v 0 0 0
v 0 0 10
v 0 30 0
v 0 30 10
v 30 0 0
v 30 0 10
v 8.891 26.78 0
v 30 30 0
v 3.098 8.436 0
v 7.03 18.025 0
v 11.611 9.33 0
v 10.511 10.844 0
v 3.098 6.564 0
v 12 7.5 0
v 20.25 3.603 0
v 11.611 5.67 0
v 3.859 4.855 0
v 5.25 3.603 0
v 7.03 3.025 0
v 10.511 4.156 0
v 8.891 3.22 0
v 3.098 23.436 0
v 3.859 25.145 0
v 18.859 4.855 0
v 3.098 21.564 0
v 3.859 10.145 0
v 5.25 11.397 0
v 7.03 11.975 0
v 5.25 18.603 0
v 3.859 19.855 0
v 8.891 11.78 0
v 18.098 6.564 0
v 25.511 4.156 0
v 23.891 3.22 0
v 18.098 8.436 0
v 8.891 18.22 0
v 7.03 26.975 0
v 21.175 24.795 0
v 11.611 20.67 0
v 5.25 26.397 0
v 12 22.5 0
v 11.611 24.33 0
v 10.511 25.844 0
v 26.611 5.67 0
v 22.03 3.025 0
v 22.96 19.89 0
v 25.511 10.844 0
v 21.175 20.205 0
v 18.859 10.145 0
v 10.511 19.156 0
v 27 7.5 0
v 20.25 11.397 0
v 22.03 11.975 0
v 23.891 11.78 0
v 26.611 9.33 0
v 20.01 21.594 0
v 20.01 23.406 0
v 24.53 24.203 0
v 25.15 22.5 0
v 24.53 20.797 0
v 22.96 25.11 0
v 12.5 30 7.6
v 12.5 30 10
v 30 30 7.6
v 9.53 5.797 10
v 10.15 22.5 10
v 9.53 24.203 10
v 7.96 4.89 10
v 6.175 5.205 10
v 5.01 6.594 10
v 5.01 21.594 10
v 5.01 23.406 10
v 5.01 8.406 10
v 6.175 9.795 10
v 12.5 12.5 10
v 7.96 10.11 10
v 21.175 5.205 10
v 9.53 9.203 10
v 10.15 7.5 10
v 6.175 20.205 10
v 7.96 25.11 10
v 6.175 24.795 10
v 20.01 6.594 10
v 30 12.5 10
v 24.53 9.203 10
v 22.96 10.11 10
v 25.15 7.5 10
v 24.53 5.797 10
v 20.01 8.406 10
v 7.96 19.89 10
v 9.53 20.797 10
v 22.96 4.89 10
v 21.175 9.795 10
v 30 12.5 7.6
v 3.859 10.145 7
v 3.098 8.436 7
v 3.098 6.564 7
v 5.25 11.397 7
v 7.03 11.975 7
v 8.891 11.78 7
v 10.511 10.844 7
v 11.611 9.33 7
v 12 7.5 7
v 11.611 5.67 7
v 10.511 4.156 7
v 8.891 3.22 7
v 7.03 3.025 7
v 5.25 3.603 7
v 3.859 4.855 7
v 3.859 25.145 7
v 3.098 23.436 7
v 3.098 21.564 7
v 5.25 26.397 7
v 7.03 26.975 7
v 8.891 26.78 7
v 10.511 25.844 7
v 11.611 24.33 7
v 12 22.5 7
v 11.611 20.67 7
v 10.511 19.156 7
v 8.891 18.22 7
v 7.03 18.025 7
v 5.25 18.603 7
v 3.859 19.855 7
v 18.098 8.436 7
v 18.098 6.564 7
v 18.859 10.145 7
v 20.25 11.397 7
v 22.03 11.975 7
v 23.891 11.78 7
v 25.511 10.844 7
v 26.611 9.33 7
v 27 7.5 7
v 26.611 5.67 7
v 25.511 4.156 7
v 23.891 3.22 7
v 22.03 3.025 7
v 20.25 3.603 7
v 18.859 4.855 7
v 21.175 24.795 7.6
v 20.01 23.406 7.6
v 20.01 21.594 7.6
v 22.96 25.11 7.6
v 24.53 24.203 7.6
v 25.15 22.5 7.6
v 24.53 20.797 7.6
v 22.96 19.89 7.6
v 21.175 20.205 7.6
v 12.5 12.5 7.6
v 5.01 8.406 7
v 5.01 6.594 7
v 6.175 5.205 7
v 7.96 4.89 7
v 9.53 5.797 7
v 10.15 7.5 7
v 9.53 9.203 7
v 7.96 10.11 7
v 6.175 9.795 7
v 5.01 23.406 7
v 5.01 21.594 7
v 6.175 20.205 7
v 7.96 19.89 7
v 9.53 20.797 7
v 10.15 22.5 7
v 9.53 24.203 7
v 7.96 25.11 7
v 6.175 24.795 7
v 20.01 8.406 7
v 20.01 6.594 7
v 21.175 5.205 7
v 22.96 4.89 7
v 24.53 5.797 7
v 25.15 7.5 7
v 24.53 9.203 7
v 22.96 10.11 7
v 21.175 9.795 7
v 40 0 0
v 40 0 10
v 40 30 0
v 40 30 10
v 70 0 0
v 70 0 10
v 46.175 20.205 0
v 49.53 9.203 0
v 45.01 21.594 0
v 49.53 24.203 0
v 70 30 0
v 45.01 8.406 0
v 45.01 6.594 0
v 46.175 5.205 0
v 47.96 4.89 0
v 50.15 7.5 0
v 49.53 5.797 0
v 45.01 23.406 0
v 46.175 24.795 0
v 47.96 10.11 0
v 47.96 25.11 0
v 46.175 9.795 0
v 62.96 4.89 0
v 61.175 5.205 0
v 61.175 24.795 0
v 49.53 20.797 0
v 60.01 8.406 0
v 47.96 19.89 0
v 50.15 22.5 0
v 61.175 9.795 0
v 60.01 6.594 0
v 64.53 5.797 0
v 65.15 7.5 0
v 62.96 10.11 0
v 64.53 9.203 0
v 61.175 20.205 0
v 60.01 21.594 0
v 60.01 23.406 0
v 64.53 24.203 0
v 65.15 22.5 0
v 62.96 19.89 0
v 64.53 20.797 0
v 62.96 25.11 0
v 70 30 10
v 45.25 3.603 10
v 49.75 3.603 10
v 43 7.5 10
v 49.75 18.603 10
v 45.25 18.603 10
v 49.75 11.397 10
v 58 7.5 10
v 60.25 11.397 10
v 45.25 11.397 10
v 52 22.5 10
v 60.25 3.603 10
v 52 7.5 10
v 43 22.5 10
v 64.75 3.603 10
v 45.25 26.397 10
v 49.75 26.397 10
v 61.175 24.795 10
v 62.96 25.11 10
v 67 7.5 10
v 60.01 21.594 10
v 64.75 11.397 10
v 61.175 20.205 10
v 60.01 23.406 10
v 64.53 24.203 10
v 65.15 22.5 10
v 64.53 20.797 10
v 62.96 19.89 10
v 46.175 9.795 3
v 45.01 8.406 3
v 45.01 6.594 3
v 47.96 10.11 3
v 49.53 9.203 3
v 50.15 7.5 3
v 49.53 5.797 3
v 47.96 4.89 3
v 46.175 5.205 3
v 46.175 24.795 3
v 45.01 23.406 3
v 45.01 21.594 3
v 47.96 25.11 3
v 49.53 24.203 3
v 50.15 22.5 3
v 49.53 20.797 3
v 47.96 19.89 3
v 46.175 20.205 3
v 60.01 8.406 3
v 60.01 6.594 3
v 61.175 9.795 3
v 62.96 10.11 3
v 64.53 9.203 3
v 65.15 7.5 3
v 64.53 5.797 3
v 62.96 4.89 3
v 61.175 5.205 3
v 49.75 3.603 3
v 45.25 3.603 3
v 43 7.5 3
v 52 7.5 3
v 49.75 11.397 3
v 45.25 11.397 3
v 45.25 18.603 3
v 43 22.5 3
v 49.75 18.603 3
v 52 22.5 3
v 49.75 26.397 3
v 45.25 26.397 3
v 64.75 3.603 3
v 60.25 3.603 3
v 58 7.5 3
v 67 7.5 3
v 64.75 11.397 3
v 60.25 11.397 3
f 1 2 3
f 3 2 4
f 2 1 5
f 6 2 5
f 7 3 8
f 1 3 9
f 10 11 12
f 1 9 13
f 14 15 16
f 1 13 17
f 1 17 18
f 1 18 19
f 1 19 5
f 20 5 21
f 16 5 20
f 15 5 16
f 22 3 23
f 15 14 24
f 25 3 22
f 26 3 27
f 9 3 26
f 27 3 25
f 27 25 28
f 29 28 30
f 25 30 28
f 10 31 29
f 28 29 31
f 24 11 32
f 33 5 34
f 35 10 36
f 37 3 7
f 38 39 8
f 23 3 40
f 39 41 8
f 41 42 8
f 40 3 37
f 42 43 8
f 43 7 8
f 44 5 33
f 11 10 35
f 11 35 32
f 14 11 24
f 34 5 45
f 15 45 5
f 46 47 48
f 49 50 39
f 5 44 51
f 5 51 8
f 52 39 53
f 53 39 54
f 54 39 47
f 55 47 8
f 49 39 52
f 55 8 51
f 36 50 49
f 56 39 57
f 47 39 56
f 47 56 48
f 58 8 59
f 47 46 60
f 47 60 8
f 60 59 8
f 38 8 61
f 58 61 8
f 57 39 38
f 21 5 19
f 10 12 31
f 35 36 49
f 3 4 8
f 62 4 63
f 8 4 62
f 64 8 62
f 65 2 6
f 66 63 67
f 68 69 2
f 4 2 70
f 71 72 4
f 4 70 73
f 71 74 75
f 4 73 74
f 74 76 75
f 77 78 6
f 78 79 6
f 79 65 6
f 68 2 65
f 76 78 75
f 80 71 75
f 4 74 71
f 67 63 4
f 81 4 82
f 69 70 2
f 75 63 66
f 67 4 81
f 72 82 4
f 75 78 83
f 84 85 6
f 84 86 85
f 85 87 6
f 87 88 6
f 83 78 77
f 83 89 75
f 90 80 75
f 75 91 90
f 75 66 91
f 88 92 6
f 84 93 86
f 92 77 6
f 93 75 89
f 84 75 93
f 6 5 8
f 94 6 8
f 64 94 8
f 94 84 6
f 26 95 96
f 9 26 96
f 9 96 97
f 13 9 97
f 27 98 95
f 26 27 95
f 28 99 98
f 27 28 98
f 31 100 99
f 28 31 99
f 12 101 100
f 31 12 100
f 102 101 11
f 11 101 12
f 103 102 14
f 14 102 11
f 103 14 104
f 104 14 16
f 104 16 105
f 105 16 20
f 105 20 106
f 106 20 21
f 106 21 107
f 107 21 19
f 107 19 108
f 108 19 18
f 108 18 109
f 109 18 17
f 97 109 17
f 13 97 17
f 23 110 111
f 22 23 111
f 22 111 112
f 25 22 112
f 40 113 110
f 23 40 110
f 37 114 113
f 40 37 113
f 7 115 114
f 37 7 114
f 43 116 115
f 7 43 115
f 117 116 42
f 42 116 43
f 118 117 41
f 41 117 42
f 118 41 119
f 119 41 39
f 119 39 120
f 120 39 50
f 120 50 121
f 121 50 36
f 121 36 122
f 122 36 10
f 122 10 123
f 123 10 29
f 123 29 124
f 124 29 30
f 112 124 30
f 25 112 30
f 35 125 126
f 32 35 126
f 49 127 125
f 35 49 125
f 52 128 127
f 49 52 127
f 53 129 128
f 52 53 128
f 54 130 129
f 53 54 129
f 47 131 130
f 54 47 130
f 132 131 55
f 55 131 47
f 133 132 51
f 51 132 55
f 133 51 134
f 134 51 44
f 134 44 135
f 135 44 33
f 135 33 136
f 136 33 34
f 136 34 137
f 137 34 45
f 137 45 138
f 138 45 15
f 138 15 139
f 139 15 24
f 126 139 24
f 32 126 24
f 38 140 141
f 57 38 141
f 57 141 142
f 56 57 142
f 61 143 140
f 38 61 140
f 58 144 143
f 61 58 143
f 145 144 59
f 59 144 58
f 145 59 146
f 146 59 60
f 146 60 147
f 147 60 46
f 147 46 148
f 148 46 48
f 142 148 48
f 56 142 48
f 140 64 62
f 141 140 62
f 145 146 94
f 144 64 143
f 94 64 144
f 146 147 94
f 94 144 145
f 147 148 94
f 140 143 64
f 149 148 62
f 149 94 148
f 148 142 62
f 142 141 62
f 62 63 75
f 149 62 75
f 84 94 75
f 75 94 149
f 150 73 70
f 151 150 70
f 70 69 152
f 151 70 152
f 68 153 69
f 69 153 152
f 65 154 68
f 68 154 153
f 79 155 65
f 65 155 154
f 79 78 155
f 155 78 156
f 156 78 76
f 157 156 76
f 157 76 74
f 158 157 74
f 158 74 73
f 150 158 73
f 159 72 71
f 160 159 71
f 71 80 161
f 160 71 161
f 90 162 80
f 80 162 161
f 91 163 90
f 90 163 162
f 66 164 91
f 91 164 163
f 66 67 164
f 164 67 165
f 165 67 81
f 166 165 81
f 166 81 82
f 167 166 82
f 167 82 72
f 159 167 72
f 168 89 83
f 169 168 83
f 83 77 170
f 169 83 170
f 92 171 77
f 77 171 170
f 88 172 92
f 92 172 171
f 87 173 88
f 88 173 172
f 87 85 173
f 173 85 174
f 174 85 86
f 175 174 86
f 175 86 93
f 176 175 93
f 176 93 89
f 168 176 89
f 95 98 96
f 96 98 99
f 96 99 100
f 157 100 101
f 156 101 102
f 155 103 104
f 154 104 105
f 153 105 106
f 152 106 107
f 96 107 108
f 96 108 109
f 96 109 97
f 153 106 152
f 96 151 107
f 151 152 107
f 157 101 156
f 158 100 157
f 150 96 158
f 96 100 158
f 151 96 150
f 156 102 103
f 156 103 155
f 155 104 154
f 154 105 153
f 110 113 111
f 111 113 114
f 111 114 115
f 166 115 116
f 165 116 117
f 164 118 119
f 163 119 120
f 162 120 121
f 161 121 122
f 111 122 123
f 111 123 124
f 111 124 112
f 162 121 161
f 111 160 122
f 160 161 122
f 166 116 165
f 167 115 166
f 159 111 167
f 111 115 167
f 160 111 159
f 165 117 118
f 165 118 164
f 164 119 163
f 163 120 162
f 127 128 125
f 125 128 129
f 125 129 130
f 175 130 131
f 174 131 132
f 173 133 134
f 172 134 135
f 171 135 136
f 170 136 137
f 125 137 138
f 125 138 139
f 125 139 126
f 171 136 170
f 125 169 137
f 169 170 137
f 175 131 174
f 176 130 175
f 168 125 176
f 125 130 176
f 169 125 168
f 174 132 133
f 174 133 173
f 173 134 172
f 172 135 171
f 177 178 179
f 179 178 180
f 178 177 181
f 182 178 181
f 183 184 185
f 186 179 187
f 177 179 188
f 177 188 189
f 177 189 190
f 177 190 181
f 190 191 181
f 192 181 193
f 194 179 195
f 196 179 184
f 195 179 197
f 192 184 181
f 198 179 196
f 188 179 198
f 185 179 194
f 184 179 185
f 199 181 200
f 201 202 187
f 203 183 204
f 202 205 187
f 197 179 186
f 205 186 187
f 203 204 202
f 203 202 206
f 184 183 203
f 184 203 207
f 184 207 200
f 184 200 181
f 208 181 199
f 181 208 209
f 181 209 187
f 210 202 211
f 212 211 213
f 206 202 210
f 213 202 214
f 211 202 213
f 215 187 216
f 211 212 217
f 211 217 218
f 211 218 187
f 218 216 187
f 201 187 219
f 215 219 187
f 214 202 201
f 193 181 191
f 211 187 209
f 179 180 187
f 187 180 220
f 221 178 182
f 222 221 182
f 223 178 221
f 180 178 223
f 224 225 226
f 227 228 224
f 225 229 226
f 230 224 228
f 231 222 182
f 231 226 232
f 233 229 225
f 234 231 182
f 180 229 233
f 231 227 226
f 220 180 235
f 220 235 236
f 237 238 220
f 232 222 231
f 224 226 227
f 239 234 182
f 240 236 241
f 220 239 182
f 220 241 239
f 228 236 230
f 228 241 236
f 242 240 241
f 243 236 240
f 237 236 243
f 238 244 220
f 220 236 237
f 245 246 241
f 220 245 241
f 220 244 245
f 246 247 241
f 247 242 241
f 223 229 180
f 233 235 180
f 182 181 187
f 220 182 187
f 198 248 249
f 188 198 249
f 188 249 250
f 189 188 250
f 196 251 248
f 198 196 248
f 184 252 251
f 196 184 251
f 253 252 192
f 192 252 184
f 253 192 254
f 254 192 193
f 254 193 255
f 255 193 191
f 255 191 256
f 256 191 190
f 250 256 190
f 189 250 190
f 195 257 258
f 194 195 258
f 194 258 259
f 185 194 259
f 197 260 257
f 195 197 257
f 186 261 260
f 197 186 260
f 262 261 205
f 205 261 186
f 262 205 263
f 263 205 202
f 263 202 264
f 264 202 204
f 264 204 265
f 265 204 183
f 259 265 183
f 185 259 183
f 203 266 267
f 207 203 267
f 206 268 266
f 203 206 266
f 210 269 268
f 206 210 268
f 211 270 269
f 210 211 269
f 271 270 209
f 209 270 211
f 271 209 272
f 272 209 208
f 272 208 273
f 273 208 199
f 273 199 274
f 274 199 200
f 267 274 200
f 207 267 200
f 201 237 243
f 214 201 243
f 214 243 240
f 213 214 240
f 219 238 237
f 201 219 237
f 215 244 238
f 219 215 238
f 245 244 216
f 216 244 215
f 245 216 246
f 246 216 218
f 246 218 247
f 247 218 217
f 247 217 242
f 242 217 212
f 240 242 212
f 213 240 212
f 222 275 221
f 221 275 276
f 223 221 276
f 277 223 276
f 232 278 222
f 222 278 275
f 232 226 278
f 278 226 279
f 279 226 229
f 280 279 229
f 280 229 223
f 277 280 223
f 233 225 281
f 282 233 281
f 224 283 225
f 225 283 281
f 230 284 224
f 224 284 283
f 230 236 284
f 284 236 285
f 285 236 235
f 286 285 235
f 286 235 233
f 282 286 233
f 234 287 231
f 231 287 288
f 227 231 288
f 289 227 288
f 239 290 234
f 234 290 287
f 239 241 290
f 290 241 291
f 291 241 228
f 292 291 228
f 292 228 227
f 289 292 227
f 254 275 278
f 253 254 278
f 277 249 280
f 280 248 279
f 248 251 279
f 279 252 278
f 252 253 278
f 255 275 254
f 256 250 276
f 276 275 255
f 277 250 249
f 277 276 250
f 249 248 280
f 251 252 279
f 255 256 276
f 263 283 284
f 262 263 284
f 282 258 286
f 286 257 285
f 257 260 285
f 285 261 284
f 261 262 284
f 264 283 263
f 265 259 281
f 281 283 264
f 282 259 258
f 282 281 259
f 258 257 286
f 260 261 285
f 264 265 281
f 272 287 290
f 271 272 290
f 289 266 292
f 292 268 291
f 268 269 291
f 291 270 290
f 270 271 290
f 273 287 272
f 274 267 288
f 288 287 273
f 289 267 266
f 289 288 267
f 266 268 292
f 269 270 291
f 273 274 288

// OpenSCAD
difference() {
cube([30,30,10]);
translate([12.5,12.5,7.6])
cube([30,30,10]);
translate([22.5,22.5,0])
cylinder(r=5.3/2,h=100,center=true);
translate([22.5,7.5,0])
cylinder(r=5.3/2,h=100,center=true);
translate([7.5,22.5,0])
cylinder(r=5.3/2,h=100,center=true);
translate([7.5,7.5,0])
cylinder(r=5.3/2,h=100,center=true);


translate([22.5,7.5,-1])
cylinder(r=9/2,h=8);
translate([7.5,22.5,-1])
cylinder(r=9/2,h=8);
translate([7.5,7.5,-1])
cylinder(r=9/2,h=8);
}

translate([40,0,0])
difference() {
cube([30,30,10]);
translate([22.5,22.5,0])
cylinder(r=5.3/2,h=100,center=true);
translate([22.5,7.5,0])
cylinder(r=5.3/2,h=100,center=true);
translate([7.5,22.5,0])
cylinder(r=5.3/2,h=100,center=true);
translate([7.5,7.5,0])
cylinder(r=5.3/2,h=100,center=true);


translate([22.5,7.5,8])
cylinder($fn=6,r=9/2,h=10,center=true);
translate([7.5,22.5,8])
cylinder($fn=6,r=9/2,h=10,center=true);
translate([7.5,7.5,8])
cylinder($fn=6, r=9/2,h=10,center=true);
}
